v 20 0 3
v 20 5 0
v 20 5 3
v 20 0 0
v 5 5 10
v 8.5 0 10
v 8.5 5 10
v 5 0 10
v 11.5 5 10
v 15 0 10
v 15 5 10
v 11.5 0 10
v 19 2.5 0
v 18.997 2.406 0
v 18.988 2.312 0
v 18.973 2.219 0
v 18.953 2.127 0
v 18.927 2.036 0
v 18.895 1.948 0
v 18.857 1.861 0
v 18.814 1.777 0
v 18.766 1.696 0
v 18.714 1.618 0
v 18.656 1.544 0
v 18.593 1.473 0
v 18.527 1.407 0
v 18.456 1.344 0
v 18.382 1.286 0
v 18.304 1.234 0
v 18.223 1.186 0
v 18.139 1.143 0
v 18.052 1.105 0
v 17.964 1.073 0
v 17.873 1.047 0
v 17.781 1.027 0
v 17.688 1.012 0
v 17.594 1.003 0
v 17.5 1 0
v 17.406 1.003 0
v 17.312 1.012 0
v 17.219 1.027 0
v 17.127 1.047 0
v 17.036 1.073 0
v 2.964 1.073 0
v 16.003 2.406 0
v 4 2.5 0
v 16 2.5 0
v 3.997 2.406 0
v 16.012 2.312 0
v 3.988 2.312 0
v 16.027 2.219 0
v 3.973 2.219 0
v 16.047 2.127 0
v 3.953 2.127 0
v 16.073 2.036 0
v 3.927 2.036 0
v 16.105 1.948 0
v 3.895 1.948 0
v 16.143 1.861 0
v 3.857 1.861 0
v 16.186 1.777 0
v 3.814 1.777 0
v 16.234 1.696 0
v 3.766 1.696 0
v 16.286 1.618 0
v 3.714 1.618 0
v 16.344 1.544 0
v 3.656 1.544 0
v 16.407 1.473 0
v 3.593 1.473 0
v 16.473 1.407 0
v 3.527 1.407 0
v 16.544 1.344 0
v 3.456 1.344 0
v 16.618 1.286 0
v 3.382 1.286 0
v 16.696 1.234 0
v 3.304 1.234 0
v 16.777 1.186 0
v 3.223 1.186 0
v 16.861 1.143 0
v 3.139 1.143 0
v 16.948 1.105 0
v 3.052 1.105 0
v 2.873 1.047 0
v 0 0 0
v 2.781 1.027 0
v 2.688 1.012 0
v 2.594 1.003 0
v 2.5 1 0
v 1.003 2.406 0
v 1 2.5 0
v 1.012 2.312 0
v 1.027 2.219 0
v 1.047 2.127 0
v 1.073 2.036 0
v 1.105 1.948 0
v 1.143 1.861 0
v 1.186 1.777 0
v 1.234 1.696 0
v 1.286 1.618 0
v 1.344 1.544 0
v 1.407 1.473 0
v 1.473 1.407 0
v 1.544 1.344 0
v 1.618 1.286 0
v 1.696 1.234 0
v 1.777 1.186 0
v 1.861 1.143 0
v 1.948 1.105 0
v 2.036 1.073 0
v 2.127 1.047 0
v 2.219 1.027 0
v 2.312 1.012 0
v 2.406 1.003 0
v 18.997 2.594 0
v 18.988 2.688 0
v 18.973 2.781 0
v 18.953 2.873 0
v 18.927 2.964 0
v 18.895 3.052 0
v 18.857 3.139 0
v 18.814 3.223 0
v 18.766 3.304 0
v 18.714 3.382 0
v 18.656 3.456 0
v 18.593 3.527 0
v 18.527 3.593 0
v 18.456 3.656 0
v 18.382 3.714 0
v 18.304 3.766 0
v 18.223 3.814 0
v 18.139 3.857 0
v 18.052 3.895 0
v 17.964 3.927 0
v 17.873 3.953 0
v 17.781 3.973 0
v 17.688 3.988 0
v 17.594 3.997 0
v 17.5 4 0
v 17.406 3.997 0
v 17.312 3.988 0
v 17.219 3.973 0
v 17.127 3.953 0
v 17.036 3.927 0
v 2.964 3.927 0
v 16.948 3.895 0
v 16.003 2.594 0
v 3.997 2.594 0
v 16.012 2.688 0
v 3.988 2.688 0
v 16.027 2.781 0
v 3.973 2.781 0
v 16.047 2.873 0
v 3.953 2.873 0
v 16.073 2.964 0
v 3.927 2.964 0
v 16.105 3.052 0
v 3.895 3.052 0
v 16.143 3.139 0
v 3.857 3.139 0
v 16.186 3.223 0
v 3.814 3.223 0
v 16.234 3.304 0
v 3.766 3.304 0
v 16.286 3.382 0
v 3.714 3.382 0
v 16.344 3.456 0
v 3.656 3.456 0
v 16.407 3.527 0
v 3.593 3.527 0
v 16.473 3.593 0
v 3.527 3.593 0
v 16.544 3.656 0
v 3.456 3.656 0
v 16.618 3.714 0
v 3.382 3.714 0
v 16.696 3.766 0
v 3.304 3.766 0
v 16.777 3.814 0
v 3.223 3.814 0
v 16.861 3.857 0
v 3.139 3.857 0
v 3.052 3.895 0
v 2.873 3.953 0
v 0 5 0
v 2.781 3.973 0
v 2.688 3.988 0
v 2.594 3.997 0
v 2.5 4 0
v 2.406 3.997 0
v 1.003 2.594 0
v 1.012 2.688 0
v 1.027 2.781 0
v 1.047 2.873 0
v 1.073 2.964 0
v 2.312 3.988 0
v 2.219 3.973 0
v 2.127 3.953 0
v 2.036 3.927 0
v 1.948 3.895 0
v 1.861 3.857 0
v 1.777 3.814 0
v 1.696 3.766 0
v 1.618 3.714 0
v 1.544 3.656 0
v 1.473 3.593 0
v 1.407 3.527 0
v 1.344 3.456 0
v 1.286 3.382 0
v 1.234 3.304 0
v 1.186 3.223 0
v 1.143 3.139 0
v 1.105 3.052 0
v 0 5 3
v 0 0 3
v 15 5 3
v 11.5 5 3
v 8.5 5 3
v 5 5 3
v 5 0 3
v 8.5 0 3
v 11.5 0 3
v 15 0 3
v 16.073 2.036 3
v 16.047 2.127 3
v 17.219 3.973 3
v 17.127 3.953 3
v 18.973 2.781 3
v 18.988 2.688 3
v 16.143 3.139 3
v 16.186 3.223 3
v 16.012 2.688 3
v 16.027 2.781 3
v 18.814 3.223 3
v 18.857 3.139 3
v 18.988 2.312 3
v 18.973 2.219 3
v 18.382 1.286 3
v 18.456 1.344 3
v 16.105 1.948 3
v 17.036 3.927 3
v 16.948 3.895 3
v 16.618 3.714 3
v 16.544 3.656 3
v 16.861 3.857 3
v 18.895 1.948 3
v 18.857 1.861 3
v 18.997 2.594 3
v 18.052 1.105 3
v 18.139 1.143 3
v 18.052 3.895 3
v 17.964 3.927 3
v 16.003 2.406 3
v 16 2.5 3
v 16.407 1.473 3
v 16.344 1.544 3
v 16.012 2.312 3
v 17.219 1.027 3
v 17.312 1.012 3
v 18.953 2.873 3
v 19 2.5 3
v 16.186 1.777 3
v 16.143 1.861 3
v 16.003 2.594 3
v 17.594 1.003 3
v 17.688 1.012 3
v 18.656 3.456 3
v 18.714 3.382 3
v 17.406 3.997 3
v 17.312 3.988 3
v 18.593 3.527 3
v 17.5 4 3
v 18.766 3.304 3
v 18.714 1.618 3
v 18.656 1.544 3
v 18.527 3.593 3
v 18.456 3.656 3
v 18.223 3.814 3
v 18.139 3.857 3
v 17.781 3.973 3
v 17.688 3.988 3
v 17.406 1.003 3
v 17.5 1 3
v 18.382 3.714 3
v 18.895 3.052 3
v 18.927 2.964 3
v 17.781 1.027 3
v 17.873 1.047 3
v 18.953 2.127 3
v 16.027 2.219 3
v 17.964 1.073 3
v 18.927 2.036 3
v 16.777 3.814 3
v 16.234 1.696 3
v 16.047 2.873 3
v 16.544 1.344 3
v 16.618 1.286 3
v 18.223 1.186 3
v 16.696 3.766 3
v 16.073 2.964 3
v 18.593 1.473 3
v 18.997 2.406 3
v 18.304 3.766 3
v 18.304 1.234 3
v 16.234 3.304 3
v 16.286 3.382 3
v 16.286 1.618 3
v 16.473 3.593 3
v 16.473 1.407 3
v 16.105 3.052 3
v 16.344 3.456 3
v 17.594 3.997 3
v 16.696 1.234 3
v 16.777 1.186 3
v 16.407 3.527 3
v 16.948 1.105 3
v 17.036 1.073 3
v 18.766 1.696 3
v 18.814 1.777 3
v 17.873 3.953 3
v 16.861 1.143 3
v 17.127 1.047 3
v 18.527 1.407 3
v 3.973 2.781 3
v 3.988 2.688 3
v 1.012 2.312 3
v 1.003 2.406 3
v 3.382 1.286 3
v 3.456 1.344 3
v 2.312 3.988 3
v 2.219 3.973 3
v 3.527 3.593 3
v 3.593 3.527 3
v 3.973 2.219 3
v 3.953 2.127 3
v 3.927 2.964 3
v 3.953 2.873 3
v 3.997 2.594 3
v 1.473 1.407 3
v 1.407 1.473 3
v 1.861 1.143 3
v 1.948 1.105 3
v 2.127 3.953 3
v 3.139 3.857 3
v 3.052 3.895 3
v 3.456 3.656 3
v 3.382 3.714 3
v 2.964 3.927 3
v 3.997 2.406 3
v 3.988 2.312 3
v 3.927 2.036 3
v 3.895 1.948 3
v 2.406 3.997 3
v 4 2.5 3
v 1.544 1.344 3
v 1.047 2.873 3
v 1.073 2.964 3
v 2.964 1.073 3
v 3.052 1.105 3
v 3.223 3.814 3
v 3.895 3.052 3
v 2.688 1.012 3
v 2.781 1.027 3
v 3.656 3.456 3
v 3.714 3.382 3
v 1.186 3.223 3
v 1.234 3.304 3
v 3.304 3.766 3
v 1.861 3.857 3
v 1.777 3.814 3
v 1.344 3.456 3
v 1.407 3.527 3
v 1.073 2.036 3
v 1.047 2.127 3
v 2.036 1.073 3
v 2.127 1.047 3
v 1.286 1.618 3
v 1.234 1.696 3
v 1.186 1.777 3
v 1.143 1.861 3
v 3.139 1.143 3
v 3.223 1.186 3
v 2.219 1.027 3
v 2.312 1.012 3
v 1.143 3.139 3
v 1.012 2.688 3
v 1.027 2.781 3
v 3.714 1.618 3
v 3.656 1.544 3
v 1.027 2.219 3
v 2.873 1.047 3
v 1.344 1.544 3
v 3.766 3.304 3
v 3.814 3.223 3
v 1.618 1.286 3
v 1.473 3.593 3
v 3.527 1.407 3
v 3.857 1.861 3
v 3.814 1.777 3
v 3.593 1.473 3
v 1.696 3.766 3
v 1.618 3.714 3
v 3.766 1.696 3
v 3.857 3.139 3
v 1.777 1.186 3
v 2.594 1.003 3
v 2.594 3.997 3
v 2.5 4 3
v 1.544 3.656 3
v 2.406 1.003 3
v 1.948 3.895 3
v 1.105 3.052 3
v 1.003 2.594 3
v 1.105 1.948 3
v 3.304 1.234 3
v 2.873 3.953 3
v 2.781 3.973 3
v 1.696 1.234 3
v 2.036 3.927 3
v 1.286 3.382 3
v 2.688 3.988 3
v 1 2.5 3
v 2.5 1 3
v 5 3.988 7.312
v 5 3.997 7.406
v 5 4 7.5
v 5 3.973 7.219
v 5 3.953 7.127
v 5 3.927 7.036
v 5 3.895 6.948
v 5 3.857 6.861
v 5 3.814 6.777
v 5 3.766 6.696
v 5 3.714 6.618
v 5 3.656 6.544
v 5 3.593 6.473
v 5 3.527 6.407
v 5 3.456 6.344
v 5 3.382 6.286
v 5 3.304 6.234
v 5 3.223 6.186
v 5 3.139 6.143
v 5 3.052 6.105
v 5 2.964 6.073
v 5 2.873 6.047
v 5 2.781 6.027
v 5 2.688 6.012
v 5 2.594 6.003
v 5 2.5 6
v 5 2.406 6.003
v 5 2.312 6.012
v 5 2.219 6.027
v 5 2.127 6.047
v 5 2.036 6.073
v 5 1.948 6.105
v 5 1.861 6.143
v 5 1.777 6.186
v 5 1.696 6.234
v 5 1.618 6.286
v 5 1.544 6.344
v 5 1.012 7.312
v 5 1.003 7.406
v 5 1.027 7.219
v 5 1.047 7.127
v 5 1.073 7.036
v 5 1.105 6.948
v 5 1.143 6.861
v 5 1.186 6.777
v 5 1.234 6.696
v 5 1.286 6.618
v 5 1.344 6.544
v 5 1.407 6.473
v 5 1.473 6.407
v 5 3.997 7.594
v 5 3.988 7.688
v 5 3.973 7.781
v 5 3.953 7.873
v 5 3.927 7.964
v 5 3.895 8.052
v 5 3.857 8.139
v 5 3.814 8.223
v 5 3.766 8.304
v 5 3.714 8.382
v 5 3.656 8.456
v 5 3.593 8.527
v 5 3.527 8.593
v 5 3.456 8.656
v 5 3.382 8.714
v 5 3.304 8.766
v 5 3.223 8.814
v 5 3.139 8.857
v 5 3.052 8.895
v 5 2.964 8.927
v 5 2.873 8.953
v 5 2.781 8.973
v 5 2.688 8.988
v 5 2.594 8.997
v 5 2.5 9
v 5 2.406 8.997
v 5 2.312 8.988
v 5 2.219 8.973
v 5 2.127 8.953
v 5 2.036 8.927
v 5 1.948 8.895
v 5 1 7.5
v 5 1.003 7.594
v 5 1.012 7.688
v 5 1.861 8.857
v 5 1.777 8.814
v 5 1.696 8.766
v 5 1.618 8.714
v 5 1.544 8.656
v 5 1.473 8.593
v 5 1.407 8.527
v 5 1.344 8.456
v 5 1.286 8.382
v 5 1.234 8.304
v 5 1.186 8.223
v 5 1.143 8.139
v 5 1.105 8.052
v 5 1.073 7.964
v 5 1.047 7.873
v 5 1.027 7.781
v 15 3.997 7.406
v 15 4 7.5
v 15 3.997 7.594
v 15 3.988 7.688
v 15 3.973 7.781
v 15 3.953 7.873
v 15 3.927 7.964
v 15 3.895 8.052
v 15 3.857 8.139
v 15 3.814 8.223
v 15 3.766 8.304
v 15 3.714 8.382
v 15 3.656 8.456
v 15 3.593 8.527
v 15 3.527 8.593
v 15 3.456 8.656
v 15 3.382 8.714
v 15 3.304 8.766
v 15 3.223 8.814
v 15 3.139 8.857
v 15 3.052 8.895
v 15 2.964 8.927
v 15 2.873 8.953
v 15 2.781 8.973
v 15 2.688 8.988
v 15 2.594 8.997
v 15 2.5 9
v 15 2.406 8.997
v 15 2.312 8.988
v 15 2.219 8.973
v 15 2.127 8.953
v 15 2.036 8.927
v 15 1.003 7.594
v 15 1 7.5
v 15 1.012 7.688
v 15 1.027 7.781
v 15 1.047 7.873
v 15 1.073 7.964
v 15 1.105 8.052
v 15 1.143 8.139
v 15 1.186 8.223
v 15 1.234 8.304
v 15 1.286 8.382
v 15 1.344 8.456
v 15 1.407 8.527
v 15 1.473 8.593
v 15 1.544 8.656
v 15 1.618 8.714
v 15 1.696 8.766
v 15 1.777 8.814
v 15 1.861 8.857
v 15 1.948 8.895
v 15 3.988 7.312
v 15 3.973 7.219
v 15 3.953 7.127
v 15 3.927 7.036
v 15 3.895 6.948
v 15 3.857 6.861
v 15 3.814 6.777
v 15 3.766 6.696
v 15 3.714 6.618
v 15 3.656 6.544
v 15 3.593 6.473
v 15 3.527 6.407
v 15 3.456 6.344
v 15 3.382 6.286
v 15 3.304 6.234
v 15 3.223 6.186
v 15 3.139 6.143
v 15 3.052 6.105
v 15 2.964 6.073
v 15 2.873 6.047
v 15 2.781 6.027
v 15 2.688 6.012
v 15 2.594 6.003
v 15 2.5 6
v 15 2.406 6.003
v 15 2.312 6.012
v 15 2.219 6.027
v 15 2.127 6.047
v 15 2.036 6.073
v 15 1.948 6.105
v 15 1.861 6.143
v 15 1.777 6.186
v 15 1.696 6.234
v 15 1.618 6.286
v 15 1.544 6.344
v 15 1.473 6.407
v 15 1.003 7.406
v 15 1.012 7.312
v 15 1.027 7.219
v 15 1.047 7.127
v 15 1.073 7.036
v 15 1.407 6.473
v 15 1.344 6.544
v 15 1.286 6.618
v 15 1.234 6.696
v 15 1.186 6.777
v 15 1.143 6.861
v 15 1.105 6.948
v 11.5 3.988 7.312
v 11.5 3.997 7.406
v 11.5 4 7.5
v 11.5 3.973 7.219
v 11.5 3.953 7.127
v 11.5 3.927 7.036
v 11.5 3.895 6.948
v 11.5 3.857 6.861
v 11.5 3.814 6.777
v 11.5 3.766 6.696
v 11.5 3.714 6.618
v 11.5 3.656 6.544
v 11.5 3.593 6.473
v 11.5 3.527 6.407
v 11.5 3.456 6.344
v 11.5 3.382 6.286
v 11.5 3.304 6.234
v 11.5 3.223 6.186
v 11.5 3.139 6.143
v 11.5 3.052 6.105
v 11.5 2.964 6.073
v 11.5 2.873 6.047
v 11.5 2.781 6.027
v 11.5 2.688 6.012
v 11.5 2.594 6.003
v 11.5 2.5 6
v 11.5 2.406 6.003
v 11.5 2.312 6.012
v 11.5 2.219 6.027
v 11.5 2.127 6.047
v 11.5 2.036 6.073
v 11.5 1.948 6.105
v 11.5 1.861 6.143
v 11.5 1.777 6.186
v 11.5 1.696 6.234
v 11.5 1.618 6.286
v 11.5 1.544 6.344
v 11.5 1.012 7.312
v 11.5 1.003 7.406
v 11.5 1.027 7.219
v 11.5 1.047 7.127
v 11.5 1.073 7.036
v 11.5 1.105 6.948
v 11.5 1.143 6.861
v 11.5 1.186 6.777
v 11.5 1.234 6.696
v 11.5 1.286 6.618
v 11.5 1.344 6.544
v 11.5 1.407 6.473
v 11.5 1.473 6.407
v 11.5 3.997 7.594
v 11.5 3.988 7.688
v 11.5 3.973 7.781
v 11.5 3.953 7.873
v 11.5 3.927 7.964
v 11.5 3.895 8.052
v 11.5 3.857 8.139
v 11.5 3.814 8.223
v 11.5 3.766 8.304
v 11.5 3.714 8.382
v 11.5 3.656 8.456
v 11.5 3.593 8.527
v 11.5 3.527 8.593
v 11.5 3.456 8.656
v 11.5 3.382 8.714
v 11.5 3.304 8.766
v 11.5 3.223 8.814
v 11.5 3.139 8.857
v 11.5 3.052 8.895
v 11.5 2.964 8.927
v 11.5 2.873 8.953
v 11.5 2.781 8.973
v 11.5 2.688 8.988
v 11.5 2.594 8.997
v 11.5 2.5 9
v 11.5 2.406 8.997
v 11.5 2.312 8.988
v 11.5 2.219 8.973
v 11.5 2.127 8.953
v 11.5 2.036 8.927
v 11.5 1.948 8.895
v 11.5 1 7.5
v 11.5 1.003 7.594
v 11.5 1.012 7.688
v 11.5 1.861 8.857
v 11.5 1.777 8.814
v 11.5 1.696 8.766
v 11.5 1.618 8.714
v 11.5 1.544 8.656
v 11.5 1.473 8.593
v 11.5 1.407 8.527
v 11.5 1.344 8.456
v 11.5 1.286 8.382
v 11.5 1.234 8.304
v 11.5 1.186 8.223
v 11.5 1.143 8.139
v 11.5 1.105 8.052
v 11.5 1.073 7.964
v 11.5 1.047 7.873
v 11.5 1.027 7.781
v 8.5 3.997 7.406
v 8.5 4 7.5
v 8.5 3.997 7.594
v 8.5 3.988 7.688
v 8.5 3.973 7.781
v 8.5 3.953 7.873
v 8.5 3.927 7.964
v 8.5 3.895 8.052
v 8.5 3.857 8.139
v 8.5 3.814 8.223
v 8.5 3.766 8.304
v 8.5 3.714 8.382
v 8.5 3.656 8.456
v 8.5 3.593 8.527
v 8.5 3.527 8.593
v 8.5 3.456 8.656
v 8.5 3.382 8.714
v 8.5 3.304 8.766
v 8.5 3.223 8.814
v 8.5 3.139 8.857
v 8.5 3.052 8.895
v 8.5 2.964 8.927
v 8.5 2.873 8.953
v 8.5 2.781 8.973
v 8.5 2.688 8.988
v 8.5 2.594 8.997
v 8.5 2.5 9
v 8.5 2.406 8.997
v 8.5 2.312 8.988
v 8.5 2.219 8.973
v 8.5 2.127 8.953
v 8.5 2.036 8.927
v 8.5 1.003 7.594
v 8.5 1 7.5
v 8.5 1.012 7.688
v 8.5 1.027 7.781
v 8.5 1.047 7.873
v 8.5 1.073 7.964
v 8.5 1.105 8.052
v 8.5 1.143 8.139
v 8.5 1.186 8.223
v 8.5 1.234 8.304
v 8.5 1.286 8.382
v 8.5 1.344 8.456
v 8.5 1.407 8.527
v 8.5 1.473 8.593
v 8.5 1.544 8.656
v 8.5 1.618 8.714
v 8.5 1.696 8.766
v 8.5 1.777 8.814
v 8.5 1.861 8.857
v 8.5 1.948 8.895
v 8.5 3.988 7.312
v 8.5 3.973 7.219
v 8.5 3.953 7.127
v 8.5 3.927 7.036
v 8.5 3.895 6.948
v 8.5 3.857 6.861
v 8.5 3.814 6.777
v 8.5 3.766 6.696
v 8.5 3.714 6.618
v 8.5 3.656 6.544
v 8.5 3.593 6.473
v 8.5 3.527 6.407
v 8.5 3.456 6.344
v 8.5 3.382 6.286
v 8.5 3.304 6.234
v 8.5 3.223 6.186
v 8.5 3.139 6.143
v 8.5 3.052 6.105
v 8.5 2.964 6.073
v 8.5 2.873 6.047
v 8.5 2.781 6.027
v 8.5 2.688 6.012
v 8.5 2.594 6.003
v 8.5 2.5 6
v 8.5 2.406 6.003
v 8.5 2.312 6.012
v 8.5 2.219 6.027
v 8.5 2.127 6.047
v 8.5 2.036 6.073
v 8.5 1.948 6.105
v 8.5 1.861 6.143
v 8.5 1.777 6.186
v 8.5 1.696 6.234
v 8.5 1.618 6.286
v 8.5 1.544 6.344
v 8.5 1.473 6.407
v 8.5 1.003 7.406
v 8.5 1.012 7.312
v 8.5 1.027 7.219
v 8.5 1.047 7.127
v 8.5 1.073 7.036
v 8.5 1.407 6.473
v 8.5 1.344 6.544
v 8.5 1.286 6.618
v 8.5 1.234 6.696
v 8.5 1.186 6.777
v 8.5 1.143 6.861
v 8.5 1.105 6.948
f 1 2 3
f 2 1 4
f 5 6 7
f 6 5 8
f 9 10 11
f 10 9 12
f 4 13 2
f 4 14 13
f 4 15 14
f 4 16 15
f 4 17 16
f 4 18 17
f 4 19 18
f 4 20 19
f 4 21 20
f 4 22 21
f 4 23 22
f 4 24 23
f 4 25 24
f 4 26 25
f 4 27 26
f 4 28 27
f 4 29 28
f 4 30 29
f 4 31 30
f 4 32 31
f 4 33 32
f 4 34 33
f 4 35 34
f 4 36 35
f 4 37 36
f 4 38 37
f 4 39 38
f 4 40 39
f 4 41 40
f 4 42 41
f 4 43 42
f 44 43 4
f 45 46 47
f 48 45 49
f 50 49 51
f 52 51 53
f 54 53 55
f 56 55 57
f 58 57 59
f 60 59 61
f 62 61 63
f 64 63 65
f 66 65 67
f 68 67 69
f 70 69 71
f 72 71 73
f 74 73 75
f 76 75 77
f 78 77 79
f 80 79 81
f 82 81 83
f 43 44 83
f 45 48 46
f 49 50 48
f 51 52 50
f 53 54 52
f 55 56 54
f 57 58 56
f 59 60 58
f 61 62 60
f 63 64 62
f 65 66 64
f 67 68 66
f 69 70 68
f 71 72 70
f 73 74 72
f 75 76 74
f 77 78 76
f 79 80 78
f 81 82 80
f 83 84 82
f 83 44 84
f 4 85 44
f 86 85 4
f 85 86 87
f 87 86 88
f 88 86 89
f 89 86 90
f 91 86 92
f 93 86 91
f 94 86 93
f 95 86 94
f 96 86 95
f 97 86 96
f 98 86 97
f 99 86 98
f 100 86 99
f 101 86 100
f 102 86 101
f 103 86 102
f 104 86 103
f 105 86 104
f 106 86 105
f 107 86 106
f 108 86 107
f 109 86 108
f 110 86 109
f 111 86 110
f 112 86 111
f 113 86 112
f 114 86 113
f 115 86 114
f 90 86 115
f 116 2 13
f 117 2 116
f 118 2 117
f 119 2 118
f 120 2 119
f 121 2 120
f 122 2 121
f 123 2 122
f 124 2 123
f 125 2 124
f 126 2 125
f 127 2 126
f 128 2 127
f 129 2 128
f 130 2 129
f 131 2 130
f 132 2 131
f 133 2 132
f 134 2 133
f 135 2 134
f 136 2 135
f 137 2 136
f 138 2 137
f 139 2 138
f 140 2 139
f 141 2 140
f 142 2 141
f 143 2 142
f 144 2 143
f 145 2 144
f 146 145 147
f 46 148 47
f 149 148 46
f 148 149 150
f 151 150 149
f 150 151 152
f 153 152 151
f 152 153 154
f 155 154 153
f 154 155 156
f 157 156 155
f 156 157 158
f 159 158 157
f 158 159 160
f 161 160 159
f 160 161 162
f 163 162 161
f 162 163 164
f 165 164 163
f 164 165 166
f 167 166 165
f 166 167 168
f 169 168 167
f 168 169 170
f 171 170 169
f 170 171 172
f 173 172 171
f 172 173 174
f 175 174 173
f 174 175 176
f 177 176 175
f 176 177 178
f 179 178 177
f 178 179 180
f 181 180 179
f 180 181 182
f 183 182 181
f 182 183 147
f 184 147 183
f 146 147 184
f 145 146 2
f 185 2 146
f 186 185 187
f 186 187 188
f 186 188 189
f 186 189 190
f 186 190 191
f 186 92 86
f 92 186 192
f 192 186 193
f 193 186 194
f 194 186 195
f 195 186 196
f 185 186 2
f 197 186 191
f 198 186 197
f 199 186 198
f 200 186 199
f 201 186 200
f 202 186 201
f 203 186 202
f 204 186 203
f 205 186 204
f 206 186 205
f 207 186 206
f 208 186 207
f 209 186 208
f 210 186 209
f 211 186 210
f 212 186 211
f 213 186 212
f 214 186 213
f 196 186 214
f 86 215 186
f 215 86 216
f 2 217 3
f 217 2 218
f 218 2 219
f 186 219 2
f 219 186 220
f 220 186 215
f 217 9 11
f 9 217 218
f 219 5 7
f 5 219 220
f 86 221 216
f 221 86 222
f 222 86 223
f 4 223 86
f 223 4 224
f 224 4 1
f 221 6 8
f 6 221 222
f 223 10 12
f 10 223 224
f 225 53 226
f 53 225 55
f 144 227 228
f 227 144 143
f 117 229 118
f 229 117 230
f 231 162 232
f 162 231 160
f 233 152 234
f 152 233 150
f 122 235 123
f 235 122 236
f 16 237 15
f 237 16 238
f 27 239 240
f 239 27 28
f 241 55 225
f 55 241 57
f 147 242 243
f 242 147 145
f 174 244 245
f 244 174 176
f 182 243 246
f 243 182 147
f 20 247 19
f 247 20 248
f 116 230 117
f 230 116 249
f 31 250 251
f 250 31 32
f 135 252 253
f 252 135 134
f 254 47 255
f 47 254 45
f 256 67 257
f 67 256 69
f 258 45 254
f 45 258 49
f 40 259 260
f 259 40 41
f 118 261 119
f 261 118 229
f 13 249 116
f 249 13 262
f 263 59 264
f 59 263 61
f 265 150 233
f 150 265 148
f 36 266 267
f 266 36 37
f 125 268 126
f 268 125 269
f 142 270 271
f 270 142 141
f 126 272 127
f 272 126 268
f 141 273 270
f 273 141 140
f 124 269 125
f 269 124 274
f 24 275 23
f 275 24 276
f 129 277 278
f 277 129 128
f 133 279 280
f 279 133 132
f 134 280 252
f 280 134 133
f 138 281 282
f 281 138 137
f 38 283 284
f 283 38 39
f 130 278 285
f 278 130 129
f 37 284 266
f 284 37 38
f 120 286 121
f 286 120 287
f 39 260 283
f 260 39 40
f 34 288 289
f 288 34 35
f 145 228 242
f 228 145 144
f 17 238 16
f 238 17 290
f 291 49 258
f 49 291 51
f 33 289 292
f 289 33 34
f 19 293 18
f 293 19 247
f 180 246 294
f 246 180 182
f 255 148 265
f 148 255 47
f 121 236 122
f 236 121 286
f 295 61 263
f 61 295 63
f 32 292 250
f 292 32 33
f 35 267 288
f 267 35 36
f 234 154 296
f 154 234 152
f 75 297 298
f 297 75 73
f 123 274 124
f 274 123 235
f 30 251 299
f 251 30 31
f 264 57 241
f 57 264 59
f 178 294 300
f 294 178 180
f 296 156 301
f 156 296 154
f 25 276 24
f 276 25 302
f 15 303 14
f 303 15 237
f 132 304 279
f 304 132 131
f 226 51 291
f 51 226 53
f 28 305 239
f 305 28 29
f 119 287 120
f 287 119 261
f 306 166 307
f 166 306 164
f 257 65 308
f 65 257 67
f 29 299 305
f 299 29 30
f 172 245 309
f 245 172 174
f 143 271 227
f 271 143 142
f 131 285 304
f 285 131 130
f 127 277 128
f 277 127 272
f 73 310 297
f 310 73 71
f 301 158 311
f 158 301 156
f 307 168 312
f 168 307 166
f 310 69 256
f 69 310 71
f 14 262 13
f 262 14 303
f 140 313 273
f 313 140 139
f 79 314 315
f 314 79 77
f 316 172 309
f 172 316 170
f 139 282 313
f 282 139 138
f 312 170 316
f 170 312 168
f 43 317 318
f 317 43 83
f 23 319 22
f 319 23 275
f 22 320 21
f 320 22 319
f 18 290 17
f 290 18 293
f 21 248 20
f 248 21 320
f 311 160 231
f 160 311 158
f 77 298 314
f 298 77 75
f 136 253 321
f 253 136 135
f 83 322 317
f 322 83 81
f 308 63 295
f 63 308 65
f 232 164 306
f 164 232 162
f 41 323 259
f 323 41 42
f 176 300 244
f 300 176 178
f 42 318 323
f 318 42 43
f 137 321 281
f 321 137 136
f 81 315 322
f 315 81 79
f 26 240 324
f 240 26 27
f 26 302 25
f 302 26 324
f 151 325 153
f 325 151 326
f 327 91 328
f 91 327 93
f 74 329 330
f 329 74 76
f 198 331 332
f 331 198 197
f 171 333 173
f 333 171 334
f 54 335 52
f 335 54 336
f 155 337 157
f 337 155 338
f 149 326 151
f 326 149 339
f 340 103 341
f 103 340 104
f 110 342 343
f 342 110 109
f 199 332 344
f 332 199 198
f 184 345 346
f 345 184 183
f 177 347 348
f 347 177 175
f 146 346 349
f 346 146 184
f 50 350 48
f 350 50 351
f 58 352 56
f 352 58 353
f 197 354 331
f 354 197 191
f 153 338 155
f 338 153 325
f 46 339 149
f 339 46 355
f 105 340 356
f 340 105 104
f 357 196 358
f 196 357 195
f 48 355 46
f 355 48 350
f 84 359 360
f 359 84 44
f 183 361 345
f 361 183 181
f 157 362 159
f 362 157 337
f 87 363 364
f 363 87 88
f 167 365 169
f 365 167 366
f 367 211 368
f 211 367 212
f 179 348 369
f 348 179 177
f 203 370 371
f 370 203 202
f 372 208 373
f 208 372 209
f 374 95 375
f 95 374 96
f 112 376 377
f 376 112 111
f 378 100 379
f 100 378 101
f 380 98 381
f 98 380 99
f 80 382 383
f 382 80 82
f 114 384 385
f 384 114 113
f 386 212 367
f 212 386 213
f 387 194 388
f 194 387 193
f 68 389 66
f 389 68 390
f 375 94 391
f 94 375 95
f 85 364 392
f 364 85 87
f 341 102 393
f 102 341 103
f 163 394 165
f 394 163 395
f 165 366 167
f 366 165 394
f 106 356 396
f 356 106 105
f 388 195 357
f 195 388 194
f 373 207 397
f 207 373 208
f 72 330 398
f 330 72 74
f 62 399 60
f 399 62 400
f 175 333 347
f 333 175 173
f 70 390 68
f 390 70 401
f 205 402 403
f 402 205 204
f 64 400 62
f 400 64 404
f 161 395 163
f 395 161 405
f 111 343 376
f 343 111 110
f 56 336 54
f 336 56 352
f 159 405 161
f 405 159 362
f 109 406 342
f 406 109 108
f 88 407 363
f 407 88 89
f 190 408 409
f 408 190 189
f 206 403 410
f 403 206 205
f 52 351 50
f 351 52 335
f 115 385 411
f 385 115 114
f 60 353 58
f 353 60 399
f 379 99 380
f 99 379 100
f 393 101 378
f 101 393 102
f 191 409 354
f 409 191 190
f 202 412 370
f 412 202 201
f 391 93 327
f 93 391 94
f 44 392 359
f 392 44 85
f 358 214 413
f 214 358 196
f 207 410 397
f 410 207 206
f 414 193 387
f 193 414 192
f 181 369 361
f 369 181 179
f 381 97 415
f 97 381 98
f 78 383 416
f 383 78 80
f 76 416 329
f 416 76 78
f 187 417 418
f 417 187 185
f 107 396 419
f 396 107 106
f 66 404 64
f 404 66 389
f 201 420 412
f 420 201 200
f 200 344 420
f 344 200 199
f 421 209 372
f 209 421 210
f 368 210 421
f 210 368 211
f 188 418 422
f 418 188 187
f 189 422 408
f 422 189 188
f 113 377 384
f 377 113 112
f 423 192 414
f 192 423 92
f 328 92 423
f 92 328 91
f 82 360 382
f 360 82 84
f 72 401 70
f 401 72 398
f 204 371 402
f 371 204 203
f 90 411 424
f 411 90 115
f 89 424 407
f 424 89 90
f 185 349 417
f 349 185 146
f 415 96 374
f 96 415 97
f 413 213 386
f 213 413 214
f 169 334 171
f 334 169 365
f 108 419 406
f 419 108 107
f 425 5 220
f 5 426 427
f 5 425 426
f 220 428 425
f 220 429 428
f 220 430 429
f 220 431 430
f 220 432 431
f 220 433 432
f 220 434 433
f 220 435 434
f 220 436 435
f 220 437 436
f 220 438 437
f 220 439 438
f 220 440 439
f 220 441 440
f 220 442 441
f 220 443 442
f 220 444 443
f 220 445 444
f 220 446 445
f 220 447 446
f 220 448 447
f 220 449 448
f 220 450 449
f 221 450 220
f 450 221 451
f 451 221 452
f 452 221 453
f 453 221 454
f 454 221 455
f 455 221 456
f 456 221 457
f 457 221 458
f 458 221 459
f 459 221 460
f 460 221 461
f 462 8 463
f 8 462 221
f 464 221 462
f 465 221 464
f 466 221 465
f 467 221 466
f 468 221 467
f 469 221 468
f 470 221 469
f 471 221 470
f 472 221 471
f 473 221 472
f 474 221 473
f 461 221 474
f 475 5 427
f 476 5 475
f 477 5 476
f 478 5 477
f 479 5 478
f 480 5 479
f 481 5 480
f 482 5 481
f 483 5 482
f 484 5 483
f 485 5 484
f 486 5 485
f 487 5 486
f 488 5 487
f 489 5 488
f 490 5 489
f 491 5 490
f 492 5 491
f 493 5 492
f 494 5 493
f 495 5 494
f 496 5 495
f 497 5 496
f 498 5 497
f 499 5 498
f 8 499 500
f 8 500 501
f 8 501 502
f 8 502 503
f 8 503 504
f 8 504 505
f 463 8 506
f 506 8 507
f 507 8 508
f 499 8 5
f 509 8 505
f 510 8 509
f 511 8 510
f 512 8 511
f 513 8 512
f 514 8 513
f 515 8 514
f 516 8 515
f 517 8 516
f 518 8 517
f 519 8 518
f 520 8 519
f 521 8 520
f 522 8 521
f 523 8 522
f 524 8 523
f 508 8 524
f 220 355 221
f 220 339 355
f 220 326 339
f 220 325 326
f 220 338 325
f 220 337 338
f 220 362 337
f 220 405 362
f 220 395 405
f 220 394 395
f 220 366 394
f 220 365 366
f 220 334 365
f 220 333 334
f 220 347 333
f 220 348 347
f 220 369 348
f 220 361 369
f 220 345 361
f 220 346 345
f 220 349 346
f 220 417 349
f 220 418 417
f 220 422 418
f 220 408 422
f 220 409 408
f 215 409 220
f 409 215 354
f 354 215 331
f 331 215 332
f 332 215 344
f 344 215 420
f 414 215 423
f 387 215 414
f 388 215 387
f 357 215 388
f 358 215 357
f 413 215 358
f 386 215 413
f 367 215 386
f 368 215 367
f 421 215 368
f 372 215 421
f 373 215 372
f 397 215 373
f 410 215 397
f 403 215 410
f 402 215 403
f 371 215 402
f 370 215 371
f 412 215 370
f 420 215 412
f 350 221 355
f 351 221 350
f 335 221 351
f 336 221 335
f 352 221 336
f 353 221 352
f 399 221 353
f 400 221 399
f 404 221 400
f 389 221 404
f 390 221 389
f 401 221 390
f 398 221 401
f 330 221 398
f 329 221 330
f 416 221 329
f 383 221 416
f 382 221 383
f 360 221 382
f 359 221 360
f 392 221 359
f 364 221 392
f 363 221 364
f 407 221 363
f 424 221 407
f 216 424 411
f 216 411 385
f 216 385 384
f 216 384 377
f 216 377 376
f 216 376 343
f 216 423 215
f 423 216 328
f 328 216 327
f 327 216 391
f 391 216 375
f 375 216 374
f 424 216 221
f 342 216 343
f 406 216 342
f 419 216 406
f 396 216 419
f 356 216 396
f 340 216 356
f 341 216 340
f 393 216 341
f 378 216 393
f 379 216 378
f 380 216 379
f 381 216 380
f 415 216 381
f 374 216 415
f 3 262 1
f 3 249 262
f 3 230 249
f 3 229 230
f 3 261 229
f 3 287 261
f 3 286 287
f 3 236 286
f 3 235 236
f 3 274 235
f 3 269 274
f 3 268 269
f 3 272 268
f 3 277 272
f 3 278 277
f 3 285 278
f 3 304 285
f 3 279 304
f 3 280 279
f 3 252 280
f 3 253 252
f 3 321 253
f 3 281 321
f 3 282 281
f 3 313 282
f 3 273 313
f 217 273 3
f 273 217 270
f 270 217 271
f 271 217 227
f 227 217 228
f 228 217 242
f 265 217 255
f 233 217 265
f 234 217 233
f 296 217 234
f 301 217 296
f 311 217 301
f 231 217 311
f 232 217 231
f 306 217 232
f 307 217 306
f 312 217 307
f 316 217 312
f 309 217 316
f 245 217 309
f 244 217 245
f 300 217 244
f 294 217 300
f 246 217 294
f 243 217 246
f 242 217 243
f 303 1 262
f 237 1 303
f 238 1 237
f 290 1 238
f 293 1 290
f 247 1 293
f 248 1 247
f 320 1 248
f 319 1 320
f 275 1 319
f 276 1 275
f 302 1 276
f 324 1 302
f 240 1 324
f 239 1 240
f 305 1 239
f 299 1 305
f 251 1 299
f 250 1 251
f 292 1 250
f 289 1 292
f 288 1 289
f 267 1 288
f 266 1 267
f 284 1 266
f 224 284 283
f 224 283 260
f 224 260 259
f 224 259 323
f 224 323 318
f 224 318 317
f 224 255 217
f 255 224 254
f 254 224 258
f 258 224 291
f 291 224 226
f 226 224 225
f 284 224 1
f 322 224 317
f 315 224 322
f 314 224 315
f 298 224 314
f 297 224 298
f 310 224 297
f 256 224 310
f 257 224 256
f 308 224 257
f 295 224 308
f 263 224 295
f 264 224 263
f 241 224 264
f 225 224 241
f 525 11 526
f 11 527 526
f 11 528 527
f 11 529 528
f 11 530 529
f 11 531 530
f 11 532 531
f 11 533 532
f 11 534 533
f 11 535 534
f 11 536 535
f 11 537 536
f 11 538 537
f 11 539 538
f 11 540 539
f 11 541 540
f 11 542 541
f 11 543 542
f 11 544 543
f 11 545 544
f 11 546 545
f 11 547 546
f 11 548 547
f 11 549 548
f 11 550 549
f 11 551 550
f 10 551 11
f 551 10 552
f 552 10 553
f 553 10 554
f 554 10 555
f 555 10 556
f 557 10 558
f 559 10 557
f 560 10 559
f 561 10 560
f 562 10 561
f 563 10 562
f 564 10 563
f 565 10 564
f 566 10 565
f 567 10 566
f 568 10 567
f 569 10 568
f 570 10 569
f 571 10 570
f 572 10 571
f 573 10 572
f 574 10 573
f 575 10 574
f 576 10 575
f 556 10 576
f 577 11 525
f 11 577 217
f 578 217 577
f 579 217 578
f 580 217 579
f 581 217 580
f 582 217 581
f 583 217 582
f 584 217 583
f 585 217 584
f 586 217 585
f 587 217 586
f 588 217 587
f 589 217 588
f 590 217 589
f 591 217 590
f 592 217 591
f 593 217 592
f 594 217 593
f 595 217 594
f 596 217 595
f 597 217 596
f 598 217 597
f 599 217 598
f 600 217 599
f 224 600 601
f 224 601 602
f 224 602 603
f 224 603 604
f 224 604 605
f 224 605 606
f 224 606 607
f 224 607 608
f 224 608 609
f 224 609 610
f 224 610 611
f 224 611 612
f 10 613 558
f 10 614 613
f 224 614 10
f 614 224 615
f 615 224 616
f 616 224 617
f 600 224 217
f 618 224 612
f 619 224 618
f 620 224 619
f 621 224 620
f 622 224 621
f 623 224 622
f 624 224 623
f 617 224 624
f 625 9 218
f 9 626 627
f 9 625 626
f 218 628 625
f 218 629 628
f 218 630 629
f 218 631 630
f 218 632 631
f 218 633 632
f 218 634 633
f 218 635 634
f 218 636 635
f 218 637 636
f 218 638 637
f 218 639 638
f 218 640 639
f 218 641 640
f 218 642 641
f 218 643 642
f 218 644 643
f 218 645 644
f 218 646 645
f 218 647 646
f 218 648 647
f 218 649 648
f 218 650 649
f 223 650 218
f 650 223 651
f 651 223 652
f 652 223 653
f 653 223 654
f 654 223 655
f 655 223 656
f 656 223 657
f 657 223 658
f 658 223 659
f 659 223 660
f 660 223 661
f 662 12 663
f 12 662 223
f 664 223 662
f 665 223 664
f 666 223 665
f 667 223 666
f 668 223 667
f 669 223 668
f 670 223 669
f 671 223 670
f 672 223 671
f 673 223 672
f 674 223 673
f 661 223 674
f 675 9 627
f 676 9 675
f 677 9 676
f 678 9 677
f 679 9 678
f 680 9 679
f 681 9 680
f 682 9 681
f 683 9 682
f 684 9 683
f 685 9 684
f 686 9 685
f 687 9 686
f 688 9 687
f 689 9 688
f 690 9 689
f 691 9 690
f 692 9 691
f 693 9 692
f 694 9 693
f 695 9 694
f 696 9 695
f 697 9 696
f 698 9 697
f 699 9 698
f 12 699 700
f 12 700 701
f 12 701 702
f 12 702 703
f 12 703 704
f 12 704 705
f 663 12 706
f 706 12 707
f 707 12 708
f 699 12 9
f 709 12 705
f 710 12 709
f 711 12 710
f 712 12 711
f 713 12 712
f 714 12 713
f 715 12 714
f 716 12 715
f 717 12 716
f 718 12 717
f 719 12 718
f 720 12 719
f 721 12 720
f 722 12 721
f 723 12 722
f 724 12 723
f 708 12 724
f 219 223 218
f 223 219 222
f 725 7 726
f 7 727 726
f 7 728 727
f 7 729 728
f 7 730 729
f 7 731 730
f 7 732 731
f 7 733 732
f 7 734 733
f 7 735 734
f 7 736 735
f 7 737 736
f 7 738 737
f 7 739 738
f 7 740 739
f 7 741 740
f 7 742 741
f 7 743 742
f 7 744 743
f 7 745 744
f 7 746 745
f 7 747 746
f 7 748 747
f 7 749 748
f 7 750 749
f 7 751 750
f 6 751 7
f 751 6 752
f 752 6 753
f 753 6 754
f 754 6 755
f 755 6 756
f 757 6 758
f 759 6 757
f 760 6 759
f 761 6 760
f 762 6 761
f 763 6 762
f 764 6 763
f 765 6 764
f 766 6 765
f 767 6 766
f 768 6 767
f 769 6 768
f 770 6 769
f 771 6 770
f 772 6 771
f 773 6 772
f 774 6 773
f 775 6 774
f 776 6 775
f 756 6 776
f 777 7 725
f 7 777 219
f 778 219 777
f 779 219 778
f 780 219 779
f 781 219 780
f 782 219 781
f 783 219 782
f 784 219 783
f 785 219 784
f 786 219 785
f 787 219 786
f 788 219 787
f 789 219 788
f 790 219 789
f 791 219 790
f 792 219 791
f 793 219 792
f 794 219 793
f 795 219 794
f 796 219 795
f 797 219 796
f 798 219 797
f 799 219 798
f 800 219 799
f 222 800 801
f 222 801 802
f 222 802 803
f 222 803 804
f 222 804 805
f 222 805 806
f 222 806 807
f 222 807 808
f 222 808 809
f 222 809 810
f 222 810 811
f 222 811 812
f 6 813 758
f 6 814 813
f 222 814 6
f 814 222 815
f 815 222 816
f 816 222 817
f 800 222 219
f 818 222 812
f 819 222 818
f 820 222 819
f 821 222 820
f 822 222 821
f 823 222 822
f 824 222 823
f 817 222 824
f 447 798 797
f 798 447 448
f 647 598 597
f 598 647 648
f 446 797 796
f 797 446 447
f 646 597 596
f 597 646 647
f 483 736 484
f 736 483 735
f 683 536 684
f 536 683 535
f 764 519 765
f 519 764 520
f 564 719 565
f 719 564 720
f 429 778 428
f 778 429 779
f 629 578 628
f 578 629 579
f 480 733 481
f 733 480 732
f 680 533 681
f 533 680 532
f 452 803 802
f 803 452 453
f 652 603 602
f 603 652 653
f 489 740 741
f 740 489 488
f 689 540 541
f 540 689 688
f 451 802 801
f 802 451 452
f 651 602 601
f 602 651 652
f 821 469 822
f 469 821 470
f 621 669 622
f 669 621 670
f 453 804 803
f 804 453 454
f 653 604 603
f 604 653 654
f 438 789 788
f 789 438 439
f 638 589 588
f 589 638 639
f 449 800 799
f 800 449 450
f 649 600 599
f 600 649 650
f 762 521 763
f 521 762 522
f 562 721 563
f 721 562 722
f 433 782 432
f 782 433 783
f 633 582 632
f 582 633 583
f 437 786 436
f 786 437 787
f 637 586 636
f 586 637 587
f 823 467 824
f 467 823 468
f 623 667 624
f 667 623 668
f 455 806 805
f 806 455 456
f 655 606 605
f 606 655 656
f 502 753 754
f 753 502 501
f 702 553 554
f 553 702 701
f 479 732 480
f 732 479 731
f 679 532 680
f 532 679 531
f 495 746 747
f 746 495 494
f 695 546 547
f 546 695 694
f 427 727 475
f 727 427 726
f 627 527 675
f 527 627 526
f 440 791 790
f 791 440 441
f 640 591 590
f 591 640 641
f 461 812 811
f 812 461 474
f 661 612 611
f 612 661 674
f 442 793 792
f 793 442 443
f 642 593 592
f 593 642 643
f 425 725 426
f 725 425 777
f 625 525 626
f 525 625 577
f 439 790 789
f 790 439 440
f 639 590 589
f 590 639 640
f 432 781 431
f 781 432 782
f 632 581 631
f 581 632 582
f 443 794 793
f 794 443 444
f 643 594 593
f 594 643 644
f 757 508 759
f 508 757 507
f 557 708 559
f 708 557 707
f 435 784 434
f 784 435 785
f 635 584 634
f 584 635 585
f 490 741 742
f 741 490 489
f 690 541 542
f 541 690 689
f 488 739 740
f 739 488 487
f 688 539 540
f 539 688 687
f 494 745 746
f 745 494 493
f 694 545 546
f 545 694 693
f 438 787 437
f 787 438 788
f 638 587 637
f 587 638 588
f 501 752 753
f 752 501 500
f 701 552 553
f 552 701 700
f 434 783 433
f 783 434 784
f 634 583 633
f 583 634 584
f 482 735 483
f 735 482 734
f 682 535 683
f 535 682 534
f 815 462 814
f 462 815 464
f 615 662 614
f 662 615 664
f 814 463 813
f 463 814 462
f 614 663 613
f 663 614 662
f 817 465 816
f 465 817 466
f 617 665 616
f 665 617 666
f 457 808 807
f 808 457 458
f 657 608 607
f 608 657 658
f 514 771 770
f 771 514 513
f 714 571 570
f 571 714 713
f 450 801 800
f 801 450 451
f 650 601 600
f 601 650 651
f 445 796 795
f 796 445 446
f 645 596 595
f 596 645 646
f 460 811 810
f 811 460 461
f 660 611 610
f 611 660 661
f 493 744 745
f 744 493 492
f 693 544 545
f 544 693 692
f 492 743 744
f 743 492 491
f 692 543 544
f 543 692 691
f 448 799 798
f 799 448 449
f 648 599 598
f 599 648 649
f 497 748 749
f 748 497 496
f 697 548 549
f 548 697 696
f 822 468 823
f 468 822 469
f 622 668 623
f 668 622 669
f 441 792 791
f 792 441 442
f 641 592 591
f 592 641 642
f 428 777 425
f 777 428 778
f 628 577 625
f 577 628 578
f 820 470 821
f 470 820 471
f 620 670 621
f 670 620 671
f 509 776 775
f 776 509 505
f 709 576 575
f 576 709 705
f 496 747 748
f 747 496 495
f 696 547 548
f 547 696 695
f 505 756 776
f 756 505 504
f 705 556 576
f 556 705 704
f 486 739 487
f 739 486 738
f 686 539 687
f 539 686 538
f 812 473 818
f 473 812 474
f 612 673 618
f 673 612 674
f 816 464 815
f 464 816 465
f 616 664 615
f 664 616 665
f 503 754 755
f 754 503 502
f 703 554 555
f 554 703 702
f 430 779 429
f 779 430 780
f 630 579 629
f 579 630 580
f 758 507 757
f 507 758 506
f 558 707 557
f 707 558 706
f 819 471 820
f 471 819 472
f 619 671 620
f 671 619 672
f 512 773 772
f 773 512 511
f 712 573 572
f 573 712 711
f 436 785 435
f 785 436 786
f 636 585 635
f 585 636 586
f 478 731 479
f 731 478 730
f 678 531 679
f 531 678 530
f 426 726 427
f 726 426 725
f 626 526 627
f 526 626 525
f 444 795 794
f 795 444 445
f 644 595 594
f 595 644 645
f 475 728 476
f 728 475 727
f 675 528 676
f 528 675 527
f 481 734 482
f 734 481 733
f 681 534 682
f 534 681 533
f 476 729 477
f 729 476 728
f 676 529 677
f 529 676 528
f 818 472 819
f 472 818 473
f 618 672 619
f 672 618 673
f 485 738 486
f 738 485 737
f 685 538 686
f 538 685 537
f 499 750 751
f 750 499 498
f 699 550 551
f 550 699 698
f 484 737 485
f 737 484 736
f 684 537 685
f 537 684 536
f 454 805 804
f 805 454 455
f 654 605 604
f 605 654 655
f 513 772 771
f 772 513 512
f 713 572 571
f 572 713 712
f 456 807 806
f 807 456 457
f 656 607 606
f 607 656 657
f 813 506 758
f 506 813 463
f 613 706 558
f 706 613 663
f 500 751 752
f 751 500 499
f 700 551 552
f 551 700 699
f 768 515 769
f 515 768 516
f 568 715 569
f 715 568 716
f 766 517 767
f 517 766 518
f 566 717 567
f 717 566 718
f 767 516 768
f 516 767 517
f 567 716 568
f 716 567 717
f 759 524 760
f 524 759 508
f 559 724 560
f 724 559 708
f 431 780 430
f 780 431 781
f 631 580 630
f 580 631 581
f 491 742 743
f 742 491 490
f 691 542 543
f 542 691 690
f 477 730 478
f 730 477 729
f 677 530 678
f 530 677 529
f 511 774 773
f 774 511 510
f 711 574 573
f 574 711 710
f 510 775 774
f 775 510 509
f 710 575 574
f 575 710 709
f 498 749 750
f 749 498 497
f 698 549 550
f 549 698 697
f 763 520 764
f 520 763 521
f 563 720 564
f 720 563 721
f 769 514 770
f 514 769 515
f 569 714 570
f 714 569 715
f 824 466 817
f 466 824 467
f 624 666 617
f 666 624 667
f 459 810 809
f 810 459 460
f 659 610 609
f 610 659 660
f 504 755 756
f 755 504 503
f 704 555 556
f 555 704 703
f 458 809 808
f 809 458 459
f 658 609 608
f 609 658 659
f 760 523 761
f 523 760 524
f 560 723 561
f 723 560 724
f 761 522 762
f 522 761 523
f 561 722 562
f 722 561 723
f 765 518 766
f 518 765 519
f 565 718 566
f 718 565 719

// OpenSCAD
$fn = 100;

difference() {
    cube([20, 5, 10]);
    translate([17.5, 2.5, -1]) cylinder(12, 1.5, 1.5);
    translate([2.5, 2.5, -1]) cylinder(12, 1.5, 1.5);
    
    translate([-2, -1, 3]) cube([7, 7, 8]);
    translate([15, -1, 3]) cube([7, 7, 8]);
    translate([8.5, -1, 3]) cube([3, 7, 8]);
    
    translate([0, 2.5, 7.5]) rotate([0, 90, 0]) cylinder(20, 1.5, 1.5);
}
